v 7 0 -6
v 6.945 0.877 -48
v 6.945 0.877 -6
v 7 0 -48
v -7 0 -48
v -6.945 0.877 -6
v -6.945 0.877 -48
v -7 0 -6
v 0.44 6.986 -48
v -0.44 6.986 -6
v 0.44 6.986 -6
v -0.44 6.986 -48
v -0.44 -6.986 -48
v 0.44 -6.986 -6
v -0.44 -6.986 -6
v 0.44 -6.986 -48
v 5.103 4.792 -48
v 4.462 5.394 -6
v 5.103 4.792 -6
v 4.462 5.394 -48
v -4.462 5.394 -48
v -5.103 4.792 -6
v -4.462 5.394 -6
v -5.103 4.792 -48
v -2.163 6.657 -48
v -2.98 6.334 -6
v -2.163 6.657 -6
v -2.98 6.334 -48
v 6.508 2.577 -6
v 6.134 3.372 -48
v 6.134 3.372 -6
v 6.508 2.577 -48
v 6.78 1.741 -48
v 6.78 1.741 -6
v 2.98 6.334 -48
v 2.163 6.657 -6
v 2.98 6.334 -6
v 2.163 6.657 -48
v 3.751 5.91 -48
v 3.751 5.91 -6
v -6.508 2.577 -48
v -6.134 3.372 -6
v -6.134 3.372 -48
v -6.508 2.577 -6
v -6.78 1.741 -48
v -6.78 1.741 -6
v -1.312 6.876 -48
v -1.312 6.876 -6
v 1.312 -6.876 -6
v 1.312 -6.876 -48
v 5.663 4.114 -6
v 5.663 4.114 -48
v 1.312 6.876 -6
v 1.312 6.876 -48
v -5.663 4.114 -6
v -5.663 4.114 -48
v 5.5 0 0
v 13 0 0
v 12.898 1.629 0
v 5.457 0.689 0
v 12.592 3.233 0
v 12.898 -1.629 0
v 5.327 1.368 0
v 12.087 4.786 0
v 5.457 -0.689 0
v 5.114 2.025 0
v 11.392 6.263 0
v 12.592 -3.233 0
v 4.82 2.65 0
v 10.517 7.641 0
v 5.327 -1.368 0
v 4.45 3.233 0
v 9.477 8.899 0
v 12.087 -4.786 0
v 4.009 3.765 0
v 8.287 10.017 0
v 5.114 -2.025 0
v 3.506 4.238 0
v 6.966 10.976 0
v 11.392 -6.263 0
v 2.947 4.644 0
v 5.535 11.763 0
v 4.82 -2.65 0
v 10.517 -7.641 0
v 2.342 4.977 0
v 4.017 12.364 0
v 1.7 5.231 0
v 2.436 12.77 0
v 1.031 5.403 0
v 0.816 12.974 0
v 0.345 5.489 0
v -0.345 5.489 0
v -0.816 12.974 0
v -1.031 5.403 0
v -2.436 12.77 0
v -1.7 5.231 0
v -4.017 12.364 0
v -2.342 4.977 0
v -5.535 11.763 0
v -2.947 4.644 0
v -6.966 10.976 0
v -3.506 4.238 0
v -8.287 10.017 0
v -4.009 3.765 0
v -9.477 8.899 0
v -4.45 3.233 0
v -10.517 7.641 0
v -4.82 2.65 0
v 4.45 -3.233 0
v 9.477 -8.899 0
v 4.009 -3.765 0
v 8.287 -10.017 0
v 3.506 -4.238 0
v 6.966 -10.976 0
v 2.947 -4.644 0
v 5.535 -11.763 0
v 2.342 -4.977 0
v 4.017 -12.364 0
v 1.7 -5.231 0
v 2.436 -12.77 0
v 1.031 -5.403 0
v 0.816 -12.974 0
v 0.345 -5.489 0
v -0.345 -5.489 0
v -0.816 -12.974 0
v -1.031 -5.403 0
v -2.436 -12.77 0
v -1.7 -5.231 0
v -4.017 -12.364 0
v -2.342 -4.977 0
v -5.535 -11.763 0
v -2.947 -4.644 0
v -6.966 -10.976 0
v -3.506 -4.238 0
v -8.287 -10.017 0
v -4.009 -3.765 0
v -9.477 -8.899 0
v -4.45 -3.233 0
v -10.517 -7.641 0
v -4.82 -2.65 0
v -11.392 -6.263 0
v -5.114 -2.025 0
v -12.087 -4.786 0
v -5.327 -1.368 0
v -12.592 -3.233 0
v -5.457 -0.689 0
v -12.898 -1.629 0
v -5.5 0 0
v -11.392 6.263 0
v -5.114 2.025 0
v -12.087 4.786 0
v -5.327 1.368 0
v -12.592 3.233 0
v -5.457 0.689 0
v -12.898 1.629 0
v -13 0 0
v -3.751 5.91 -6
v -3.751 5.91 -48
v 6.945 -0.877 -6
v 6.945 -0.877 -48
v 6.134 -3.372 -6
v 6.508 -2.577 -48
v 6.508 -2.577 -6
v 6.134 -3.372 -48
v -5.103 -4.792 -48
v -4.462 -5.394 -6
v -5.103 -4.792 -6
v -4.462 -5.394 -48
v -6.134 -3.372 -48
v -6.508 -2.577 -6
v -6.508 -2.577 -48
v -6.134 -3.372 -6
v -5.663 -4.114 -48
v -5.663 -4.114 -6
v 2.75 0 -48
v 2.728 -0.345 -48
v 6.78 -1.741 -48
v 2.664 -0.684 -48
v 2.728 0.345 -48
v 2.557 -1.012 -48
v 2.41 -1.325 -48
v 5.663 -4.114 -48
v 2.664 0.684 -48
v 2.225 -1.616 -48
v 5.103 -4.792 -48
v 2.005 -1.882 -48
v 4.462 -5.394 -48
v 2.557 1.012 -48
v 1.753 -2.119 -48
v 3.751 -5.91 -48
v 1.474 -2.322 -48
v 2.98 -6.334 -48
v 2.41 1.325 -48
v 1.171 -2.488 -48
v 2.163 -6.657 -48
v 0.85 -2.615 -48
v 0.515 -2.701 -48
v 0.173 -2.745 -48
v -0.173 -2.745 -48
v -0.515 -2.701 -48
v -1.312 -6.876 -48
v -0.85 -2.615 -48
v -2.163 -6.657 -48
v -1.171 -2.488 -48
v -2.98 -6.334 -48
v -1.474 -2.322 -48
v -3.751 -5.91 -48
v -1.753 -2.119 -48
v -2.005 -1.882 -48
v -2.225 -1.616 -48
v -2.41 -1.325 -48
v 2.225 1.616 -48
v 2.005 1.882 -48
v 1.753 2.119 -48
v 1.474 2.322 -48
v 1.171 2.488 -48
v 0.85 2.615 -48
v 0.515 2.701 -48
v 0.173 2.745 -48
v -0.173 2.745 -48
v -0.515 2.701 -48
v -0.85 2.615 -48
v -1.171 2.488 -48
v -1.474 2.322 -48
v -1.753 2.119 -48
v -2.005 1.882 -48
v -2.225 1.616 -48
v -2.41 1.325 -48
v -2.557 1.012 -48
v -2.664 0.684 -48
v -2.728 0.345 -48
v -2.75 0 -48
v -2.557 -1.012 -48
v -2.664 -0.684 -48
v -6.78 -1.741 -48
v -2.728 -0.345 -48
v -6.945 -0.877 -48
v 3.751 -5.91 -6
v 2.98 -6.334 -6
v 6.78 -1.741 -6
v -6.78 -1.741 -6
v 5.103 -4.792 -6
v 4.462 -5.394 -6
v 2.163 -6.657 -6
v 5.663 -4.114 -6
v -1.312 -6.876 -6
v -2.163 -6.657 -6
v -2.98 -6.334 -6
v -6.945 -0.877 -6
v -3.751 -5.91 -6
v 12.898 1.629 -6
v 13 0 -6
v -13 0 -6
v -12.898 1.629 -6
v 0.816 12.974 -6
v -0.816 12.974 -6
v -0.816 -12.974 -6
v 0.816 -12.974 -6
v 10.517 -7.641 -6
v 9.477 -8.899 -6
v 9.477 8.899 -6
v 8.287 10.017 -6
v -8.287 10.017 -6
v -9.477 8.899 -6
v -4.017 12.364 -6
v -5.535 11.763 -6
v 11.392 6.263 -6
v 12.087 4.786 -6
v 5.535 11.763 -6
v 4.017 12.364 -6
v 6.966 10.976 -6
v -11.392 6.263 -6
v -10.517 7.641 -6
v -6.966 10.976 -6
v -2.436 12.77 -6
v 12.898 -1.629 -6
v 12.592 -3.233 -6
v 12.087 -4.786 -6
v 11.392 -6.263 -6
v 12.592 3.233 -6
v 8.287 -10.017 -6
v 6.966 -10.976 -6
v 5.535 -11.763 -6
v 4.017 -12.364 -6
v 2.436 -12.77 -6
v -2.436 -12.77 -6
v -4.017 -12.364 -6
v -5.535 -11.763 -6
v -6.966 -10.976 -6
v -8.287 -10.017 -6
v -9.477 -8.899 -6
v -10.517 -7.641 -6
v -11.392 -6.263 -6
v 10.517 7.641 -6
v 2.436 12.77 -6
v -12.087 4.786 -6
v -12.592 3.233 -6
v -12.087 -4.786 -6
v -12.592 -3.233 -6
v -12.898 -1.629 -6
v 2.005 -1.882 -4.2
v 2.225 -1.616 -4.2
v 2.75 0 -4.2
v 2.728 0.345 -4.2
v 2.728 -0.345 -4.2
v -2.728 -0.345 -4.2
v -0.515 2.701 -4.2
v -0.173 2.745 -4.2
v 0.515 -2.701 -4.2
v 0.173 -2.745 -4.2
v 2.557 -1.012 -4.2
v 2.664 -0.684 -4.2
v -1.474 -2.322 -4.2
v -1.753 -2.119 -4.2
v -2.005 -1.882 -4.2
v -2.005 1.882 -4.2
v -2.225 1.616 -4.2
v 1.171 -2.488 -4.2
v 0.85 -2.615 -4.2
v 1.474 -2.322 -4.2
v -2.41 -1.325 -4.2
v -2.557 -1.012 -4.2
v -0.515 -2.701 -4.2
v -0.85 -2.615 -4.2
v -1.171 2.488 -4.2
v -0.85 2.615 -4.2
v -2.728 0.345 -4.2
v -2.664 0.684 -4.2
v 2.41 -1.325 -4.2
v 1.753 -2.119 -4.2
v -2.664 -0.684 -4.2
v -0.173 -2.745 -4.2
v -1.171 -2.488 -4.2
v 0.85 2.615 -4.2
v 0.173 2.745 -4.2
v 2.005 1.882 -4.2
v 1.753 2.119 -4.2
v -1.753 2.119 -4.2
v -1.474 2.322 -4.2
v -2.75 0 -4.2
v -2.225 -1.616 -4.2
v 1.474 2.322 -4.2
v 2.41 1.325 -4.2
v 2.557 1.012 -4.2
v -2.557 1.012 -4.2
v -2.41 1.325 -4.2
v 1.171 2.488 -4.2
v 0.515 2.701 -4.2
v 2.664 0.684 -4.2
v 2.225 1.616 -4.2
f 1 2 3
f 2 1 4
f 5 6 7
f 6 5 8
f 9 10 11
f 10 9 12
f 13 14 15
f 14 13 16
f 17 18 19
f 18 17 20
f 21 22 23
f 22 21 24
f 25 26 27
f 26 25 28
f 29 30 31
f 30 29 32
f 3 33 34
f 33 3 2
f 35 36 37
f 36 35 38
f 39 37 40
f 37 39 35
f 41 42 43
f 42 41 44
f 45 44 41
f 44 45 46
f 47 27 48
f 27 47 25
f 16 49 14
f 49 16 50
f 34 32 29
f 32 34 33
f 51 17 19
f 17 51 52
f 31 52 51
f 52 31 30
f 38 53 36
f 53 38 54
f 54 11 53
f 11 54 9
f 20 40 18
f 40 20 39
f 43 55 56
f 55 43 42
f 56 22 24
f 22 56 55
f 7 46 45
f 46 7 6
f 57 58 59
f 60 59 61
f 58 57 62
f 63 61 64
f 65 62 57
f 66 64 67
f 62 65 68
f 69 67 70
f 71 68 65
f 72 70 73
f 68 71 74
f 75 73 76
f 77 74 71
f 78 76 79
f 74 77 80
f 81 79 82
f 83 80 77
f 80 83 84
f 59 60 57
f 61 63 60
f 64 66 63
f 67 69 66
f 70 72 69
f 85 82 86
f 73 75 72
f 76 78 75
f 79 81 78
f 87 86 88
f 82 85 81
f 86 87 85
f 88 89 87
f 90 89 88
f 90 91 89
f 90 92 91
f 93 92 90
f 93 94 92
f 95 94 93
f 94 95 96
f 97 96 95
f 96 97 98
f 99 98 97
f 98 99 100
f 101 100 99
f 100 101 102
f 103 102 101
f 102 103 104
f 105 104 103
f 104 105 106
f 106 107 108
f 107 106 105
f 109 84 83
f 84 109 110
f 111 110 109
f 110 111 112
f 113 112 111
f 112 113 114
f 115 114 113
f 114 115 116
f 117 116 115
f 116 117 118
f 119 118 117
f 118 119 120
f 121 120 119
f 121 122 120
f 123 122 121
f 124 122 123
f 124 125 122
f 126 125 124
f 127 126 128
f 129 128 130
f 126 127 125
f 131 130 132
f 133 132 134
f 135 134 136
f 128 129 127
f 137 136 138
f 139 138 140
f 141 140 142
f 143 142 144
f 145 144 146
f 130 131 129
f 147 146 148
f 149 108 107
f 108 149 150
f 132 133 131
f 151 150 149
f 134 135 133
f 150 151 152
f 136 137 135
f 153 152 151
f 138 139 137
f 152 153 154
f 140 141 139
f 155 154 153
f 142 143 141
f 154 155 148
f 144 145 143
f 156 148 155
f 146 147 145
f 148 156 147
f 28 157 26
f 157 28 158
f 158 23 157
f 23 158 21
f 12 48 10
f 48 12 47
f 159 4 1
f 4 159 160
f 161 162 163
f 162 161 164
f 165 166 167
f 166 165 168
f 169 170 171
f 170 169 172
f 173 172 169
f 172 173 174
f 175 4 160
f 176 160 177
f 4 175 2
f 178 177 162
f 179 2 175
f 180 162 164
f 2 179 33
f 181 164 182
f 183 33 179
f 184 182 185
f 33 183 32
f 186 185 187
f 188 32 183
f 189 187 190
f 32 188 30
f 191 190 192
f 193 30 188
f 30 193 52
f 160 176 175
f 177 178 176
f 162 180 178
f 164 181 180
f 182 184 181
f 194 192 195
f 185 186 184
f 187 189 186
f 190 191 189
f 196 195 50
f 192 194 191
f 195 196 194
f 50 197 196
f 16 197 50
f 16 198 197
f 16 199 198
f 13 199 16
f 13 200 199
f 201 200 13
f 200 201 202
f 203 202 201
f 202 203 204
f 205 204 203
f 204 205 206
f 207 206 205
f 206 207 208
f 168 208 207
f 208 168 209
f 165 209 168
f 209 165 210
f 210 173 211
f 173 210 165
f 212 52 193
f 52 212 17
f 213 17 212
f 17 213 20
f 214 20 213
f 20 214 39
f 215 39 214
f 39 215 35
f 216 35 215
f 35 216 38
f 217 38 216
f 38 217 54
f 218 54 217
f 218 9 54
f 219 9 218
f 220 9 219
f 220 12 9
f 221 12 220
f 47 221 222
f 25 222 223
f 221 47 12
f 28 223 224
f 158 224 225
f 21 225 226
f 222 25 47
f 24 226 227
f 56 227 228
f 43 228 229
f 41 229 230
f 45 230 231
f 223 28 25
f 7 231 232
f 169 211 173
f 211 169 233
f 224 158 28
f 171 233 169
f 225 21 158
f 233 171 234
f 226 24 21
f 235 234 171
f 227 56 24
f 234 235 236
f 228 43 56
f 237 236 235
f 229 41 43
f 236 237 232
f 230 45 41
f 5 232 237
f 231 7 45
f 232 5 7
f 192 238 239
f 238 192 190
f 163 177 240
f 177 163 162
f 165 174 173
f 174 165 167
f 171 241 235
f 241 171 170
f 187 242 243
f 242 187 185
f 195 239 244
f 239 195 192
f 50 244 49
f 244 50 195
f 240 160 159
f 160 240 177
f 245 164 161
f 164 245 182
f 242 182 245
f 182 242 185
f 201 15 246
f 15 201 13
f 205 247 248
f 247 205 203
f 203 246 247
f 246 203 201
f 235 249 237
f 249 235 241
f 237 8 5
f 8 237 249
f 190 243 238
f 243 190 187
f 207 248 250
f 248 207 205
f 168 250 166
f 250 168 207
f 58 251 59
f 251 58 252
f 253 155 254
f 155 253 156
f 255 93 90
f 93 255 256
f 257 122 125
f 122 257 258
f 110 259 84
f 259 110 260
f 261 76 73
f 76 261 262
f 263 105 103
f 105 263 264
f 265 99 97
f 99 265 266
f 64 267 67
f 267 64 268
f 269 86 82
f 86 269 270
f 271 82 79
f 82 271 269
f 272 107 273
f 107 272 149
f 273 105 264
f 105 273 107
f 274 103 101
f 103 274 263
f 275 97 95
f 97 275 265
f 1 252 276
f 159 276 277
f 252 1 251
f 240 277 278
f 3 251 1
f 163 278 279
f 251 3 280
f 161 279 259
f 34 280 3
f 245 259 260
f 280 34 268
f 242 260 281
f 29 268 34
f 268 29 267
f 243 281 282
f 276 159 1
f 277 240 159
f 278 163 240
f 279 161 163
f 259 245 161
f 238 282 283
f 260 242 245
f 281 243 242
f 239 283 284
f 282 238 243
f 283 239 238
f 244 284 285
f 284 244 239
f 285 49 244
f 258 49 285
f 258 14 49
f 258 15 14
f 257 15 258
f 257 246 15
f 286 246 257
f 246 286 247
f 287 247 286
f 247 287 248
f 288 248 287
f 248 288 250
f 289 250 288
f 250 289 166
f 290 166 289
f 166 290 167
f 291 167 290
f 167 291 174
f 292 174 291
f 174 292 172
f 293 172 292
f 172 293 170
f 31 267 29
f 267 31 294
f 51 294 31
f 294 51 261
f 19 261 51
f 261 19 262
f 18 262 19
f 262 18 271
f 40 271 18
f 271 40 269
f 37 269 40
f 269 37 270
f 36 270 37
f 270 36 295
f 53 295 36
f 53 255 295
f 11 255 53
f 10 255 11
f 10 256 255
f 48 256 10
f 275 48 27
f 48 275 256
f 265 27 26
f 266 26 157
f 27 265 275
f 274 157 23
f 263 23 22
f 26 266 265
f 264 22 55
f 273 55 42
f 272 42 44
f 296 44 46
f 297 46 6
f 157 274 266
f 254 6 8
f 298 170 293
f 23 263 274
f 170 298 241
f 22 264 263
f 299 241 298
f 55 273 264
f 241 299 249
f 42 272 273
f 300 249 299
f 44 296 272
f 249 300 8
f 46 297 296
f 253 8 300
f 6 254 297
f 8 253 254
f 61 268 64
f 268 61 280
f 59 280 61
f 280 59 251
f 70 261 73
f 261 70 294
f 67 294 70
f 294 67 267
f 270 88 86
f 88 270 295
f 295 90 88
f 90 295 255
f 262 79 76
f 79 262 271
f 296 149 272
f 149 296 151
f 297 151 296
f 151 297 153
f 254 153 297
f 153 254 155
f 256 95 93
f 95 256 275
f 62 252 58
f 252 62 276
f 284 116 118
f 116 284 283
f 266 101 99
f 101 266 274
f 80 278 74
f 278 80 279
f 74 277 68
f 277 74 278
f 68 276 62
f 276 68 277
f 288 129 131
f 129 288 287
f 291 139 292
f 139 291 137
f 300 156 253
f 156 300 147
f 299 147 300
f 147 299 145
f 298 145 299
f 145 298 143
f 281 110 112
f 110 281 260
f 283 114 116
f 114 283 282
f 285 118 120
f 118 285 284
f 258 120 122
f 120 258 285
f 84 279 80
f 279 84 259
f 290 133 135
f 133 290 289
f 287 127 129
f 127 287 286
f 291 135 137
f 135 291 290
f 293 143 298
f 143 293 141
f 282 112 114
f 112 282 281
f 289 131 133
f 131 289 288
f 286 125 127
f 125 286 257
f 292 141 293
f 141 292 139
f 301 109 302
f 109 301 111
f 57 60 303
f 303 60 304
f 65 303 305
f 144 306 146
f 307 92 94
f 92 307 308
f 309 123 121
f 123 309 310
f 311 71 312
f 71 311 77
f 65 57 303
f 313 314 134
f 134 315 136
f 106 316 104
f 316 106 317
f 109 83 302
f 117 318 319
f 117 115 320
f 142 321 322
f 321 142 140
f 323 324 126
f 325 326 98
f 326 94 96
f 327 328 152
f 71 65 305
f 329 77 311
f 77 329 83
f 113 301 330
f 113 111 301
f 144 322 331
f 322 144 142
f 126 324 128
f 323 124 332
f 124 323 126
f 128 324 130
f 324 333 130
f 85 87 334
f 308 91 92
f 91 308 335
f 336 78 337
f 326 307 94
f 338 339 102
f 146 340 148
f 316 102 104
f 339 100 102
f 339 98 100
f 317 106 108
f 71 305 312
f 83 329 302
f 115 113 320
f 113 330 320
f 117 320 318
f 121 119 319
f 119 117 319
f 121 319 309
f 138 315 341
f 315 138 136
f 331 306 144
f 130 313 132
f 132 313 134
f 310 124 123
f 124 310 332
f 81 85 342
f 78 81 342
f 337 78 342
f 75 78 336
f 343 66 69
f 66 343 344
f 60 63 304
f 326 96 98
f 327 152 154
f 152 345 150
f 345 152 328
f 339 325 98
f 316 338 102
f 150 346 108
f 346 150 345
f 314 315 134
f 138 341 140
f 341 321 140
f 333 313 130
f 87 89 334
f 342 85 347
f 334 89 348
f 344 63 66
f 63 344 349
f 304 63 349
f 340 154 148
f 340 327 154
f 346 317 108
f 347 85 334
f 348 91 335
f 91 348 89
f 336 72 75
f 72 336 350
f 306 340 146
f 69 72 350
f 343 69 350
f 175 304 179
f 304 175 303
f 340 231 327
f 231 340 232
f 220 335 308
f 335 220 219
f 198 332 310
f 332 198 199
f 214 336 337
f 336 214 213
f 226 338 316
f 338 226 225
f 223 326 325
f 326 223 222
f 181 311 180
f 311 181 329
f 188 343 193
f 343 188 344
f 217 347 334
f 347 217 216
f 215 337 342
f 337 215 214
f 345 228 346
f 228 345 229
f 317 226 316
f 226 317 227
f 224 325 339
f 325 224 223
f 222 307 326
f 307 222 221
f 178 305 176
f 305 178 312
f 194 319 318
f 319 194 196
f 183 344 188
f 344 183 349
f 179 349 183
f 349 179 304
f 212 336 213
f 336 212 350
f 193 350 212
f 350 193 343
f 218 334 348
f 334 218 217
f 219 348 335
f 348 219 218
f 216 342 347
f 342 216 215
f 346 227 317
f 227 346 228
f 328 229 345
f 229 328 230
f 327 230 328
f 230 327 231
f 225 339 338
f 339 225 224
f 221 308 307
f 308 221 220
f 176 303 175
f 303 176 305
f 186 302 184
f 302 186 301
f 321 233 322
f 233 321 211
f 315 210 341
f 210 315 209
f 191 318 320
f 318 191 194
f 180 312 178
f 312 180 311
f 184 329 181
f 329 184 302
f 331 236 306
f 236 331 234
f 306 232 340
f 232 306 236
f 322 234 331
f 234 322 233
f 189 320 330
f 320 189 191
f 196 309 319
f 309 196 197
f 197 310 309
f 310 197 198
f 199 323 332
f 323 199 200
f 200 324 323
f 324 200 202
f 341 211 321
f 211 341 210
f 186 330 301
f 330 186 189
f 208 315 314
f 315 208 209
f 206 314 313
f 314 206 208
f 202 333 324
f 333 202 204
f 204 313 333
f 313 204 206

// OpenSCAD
$fn = 50;


difference() {
	union() {
		translate(v = [0, 0, -48.0000000000]) {
			cylinder(h = 48, r = 7.0000000000);
		}
		translate(v = [0, 0, -6.0000000000]) {
			cylinder(h = 6, r = 13.0000000000);
		}
	}
	union() {
		translate(v = [0, 0, 0]) {
			rotate(a = [0, 0, 0]) {
				difference() {
					union() {
						#translate(v = [0, 0, -48.0000000000]) {
							cylinder(h = 48, r = 2.2500000000);
						}
						#translate(v = [0, 0, -4.2000000000]) {
							cylinder(h = 4.2000000000, r1 = 2.7500000000, r2 = 5.5000000000);
						}
						#translate(v = [0, 0, -48.0000000000]) {
							cylinder(h = 48, r = 2.7500000000);
						}
						#translate(v = [0, 0, -48.0000000000]) {
							cylinder(h = 48, r = 2.2500000000);
						}
					}
					union();
				}
			}
		}
	}
}
